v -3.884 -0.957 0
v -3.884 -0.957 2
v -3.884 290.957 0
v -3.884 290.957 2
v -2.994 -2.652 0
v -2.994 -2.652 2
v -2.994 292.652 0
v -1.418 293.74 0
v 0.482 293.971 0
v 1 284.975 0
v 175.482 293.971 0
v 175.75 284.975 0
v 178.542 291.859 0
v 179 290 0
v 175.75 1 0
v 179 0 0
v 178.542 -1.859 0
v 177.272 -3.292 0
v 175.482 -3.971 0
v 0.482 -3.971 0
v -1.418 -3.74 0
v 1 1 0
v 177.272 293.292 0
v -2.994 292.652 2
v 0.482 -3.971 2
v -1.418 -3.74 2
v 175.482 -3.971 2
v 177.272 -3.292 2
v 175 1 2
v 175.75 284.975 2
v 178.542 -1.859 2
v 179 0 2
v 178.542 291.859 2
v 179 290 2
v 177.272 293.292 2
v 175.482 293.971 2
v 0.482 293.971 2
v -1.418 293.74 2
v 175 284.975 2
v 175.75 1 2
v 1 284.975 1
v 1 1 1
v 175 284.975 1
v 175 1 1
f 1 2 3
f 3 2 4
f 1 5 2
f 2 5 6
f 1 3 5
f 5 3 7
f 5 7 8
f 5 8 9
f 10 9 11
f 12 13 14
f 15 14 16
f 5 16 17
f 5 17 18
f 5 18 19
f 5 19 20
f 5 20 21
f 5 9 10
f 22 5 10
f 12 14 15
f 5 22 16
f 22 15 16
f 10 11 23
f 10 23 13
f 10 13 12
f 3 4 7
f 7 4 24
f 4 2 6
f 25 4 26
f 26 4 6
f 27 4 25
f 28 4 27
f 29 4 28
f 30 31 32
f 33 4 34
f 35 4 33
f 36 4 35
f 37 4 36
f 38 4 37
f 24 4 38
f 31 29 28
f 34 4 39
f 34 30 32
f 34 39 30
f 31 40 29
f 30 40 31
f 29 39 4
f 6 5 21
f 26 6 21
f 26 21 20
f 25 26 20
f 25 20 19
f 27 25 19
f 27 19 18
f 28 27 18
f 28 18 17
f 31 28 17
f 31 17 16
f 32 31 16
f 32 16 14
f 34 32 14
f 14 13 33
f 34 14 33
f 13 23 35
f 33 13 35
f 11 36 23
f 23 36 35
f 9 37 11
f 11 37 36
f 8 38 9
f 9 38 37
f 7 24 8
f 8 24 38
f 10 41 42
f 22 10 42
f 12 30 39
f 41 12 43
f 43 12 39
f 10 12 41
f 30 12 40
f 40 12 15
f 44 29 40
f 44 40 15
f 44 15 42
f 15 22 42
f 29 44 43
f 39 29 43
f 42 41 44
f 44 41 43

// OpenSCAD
module screen()
{
    translate([1, 1, 0]){
        rotate([0, 0, 0]){
            cube([174.75, 283.975, 2]);
        }
    }
}

module lid_front()
{
    difference(){
        minkowski()
        {
            cube([175,290,1]);
            cylinder(r=4,h=1);
        }
        screen();
    }
}

module lid_back()
{
    translate([0, 0, 1]) {
        cube([175, 290, 1]);
    }
}

lid_front();
lid_back();
//screen();
